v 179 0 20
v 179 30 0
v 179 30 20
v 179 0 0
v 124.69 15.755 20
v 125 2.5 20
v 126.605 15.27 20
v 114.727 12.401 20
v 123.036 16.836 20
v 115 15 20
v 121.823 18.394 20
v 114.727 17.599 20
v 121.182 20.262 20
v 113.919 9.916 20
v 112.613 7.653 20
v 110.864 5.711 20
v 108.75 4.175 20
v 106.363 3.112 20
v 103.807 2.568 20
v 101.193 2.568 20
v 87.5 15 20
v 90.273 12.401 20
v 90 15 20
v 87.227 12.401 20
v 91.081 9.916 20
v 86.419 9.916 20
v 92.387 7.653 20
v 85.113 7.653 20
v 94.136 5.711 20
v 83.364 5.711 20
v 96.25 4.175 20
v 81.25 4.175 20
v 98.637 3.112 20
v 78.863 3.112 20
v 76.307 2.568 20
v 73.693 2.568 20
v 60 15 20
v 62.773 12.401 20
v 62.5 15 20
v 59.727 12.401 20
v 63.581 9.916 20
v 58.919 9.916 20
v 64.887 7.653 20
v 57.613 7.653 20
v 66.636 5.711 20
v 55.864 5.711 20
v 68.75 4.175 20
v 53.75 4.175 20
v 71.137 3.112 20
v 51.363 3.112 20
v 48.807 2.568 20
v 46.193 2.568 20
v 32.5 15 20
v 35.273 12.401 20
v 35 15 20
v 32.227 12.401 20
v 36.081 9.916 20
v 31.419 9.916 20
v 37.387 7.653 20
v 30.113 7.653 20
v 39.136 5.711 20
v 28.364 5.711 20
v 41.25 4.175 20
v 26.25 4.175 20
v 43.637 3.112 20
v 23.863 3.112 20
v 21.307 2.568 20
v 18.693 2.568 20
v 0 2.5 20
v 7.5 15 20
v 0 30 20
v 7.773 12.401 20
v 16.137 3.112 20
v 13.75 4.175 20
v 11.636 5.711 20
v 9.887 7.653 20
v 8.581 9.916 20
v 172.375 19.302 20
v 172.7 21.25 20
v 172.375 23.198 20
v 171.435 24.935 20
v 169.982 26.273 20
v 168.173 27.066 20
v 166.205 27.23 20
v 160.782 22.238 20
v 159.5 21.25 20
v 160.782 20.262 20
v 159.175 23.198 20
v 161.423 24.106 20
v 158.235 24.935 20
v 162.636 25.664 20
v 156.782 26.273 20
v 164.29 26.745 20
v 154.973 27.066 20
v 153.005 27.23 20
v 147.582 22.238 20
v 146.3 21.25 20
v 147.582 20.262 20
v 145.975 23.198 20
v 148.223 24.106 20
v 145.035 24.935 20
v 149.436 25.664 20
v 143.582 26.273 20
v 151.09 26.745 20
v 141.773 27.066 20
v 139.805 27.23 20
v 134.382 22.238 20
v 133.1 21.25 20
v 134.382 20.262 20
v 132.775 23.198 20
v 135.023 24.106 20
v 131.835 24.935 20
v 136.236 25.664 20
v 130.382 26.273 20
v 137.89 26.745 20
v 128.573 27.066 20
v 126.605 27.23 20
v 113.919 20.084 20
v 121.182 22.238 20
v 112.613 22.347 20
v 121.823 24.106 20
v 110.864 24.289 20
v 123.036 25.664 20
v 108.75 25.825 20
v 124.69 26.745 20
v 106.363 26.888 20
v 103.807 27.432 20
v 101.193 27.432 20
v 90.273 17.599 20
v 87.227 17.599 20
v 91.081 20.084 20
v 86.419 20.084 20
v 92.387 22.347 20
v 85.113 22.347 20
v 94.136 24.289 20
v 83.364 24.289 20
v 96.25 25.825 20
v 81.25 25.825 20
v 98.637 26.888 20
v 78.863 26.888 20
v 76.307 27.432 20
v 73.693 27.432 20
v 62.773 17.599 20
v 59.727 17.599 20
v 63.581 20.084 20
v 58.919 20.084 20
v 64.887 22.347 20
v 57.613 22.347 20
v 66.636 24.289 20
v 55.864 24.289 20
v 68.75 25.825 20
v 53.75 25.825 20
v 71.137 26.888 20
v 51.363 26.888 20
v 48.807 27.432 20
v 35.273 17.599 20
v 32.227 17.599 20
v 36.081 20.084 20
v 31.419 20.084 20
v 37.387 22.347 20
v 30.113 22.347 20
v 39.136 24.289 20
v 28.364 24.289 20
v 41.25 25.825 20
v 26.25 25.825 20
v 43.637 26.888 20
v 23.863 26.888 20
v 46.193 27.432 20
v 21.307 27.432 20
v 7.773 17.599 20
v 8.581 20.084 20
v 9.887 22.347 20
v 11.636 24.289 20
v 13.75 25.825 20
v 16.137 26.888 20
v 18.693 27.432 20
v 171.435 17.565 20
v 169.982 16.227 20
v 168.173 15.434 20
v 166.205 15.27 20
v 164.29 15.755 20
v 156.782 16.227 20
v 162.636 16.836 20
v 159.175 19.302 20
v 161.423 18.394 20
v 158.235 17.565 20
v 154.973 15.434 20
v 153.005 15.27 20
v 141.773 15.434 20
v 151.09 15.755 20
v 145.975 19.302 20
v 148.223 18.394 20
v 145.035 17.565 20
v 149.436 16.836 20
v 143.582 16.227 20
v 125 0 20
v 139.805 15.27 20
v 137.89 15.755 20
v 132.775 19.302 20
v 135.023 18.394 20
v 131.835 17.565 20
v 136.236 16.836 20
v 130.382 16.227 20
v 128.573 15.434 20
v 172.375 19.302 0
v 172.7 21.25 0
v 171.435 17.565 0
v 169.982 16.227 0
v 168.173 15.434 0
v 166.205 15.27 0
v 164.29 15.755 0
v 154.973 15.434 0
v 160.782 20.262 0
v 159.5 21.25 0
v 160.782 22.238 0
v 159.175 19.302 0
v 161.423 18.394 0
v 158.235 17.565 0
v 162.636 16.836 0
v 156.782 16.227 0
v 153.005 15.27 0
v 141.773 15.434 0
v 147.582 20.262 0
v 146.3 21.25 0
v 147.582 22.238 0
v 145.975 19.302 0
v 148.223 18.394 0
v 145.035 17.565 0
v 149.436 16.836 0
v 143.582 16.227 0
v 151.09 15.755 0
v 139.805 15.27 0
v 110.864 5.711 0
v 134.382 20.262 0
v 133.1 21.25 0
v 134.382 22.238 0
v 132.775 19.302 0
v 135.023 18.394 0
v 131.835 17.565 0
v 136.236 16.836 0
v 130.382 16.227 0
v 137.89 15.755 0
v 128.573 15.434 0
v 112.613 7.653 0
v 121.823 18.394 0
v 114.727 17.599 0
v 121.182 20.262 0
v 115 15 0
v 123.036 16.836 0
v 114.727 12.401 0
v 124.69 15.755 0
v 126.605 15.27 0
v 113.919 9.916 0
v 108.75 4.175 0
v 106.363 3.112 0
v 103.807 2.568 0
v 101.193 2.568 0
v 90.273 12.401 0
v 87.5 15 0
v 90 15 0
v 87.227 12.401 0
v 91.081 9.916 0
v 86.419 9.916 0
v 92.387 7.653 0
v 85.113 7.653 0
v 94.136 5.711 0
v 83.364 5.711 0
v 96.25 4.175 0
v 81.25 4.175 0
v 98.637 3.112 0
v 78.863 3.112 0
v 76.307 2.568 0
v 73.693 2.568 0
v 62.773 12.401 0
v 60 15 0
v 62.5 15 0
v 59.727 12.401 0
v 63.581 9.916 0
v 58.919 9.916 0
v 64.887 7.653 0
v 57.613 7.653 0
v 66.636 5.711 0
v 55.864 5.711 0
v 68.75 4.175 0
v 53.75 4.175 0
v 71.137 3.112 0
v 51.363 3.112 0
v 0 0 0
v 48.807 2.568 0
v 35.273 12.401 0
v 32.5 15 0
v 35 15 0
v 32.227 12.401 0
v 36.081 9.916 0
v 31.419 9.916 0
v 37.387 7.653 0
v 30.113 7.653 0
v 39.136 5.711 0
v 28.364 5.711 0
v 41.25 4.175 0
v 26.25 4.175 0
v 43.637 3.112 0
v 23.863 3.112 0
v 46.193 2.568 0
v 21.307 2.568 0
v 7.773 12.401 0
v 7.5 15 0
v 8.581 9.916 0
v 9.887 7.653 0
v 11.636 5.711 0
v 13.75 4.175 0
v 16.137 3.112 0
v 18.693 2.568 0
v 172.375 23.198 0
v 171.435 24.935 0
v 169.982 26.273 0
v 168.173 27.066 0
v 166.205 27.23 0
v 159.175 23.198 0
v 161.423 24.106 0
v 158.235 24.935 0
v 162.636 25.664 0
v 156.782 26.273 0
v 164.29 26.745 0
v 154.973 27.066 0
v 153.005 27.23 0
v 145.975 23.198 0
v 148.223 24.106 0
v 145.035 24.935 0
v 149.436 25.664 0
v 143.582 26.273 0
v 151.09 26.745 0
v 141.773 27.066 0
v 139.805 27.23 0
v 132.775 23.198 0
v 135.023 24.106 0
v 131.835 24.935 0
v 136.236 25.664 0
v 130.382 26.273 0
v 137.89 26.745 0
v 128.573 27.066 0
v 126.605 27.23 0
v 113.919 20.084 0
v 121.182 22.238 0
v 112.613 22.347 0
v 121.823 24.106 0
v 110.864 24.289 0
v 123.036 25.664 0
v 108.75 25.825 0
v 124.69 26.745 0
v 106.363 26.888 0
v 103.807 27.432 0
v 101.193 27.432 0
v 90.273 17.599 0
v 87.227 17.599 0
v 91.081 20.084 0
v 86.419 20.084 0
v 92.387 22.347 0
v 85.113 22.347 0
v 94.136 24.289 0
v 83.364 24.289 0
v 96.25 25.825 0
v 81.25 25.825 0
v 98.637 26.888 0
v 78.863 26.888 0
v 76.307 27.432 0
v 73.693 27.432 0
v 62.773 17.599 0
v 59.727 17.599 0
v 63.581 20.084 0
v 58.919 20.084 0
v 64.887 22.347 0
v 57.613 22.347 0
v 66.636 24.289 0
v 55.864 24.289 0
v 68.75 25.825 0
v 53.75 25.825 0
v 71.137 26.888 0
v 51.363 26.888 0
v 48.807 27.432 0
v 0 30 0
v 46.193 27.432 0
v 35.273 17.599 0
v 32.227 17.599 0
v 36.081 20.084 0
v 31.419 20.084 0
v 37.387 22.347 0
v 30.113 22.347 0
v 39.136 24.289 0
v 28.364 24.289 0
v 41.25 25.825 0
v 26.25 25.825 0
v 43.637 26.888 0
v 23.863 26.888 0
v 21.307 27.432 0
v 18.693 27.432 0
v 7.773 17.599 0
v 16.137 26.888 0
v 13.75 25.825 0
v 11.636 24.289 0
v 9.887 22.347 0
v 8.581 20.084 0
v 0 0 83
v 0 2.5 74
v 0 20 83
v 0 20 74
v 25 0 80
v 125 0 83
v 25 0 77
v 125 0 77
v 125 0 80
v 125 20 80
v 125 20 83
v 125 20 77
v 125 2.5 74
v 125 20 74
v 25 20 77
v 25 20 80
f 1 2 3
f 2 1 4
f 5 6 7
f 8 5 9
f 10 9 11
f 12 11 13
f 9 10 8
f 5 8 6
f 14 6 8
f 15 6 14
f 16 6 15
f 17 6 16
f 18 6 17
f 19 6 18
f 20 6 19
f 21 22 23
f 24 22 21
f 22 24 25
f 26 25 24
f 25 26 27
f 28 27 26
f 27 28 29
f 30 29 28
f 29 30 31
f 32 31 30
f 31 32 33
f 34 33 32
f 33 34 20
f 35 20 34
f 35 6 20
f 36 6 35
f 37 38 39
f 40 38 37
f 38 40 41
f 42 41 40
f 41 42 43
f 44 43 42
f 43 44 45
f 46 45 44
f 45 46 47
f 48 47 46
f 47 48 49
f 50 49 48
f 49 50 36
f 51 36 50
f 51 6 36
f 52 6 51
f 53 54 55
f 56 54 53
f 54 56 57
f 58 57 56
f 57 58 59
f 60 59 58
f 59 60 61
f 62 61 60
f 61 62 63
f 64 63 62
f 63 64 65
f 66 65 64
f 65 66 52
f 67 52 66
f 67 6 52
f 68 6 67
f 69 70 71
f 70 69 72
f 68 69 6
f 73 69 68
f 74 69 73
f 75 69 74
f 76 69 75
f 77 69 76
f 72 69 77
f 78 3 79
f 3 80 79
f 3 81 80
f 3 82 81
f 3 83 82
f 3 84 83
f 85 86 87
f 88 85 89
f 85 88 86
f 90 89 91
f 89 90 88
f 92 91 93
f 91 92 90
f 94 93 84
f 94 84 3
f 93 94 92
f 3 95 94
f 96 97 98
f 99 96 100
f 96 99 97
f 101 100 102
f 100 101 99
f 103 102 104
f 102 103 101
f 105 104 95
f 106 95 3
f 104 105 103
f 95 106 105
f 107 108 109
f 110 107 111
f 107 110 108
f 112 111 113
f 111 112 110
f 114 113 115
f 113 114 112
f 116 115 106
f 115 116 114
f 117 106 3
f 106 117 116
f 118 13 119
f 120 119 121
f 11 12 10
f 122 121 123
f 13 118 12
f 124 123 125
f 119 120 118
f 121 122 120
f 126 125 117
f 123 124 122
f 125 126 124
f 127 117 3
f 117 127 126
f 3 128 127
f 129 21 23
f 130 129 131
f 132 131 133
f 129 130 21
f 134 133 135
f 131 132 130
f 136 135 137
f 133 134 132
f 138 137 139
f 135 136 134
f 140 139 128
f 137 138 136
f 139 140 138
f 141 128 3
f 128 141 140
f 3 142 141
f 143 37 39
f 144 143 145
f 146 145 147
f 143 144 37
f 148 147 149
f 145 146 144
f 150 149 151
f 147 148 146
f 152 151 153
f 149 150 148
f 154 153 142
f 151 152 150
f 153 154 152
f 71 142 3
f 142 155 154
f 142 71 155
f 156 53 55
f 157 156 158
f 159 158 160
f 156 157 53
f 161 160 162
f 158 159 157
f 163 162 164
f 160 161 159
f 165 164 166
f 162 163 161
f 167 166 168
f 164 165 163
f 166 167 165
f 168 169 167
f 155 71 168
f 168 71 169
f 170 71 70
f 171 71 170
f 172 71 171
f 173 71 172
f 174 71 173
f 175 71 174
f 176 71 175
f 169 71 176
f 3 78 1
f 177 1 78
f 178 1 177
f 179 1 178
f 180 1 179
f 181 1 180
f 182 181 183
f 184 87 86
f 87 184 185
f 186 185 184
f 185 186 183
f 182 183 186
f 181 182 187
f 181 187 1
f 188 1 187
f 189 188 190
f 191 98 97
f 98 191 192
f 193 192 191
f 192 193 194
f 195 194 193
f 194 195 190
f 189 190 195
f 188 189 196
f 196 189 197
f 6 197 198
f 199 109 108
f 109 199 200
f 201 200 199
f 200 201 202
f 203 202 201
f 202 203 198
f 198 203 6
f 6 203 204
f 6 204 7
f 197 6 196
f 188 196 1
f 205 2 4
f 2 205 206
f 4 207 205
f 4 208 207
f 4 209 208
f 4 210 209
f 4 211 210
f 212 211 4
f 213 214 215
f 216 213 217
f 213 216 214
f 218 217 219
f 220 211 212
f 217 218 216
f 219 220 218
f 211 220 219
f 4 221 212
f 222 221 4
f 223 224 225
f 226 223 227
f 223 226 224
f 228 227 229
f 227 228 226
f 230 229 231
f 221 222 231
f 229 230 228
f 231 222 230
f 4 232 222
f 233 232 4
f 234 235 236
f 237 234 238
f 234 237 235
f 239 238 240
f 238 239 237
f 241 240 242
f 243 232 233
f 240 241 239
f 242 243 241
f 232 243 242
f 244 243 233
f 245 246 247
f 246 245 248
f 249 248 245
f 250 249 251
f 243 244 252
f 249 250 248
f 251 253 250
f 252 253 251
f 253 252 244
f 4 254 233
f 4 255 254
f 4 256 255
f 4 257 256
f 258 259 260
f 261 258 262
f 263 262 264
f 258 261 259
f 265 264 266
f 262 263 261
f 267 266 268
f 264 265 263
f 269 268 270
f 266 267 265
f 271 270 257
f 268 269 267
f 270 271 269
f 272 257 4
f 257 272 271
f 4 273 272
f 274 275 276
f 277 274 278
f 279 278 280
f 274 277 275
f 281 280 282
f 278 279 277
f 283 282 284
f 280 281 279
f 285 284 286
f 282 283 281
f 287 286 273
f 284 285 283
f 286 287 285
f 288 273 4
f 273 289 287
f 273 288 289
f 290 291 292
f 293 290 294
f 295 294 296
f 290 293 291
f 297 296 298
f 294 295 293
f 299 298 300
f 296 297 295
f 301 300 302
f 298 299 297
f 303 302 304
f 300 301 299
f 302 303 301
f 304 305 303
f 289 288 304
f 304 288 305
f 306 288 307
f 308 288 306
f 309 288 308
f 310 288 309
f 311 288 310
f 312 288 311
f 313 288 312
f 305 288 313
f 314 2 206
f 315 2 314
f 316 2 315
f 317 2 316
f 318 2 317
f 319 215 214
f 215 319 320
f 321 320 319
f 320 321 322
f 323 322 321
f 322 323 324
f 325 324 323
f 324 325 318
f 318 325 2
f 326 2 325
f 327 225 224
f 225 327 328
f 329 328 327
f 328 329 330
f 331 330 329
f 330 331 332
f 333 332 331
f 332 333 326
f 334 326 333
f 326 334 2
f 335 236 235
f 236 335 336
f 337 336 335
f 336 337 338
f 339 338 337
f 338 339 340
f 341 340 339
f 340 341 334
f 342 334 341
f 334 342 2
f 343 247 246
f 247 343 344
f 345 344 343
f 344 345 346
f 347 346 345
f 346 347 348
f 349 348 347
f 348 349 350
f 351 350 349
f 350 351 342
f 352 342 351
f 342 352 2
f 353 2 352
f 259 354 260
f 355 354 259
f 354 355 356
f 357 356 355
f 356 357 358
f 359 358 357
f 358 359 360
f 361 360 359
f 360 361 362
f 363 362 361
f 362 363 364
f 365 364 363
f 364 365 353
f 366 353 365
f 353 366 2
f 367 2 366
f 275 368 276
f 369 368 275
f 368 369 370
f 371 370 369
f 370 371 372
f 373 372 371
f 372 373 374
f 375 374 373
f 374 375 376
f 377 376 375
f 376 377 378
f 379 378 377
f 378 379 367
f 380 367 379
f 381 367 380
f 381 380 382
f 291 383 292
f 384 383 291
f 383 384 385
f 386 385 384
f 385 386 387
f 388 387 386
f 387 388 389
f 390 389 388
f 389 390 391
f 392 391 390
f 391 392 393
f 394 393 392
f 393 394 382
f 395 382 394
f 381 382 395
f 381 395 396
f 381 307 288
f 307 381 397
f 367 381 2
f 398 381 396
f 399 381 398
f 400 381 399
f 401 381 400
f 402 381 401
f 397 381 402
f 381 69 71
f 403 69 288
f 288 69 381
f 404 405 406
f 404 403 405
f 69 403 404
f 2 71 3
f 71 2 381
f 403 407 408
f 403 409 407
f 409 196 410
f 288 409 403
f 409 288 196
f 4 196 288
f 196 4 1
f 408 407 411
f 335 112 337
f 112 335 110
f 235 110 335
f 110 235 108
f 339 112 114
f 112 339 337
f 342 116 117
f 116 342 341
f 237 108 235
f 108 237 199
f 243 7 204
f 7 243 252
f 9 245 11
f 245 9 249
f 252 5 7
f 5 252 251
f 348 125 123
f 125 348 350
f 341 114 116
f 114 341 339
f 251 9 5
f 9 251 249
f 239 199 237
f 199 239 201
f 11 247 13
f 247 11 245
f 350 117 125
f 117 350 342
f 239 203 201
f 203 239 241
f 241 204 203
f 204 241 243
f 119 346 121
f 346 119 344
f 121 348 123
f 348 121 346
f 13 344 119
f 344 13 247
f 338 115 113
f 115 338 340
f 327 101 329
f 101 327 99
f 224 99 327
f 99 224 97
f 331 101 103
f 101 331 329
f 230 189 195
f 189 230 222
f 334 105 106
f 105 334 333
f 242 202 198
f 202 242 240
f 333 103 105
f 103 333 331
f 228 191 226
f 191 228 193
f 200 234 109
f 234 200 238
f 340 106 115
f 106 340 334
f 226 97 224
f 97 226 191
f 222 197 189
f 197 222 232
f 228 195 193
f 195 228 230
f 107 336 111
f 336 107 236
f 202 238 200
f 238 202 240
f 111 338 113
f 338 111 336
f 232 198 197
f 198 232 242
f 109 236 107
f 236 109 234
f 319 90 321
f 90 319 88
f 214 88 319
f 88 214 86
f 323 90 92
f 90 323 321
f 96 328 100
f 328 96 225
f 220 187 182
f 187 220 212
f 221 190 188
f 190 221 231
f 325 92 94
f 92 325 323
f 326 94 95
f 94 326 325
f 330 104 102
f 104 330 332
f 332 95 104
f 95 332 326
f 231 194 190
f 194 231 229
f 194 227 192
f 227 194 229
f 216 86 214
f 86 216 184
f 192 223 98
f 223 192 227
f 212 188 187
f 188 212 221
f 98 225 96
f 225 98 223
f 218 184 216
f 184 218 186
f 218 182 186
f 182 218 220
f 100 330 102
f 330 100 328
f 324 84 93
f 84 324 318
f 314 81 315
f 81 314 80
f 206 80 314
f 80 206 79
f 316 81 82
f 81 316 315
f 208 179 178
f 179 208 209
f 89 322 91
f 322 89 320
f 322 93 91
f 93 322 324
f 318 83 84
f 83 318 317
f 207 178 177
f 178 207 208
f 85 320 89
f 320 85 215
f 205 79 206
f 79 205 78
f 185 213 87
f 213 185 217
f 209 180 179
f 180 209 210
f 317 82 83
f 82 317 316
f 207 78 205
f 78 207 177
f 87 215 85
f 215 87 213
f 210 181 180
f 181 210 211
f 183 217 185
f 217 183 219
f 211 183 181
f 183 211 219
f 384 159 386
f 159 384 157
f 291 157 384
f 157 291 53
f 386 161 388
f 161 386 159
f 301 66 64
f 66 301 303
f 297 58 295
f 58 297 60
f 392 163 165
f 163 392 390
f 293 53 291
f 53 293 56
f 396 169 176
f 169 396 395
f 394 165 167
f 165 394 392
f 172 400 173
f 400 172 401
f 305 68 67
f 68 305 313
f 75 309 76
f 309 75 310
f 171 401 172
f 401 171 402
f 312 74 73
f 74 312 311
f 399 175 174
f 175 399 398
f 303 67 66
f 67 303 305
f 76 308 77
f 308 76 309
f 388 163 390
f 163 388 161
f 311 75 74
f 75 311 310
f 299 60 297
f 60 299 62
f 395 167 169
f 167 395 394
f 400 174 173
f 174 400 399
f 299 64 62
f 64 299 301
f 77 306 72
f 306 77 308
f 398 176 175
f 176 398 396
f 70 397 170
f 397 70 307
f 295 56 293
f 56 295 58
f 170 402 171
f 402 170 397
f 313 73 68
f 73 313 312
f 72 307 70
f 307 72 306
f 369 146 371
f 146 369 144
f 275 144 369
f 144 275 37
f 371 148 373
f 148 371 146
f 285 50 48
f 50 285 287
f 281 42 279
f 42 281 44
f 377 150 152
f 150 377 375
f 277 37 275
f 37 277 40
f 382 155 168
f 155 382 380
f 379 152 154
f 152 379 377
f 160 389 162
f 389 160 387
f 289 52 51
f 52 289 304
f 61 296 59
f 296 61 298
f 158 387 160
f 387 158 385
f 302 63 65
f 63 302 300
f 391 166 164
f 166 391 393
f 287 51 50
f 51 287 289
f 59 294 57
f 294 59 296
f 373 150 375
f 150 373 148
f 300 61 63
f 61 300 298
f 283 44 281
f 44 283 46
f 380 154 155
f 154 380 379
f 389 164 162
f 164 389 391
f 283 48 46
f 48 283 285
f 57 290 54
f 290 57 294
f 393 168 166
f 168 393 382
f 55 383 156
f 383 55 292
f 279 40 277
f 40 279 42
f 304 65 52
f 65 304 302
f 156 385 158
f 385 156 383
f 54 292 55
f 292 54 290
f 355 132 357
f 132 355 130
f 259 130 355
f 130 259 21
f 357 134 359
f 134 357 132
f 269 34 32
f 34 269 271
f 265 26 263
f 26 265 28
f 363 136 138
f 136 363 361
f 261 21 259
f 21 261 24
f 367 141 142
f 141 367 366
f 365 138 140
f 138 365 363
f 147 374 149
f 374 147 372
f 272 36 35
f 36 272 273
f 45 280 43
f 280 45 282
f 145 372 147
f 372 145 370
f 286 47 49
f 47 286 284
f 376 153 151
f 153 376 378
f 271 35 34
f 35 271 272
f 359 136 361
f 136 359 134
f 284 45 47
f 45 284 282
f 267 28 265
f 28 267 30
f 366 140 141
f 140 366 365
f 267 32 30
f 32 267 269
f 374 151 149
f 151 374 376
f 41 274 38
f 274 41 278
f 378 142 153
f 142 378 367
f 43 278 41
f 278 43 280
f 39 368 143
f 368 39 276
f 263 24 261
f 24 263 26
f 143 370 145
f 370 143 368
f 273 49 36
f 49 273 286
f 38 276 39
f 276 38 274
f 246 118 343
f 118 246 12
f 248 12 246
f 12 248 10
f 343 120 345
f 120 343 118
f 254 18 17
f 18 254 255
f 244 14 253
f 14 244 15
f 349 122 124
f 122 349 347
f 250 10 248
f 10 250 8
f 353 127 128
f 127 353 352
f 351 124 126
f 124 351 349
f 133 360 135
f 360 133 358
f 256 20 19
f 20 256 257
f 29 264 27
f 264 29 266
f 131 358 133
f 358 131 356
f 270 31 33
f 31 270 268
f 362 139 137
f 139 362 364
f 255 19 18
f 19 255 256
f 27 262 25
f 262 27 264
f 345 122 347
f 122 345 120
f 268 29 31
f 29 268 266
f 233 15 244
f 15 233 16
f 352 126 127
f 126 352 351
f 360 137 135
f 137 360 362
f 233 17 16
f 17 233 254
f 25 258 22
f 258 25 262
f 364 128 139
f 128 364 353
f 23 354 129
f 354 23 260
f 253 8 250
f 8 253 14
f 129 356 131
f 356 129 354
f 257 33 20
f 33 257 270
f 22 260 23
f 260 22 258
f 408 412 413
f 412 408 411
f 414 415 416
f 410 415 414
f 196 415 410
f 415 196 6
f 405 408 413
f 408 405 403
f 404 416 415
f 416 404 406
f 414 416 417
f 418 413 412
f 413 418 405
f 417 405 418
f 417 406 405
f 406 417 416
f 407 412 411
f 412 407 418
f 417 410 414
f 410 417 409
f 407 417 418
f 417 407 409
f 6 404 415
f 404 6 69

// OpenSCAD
thickness =  3;
width     = 20;
marker1   = 25;
marker2   = 12;
marker_l  = 45;

module marker1() {
    cylinder(d = marker1, h = marker_l);
}

module marker2() {
    cylinder(d = marker2, h = marker_l);
}

module holder() {
        difference() {
        cube( [ 5 * marker1 + 4.5 * marker2, 1.2 * marker1, width ] );

        translate([ (1.1-0.3) * marker2 + 4.7*marker1, 0.85*marker1, -1]) marker2();
        translate([ (2.2-0.3) * marker2 + 4.7*marker1, 0.85*marker1, -1]) marker2();
        translate([ (3.3-0.3) * marker2 + 4.7*marker1, 0.85*marker1, -1]) marker2();
        translate([ (4.4-0.3) * marker2 + 4.7*marker1, 0.85*marker1, -1]) marker2();
    
        translate([ (1.1-0.3) * marker1, 0.6*marker1, -1]) marker1();
        translate([ (2.2-0.3) * marker1, 0.6*marker1, -1]) marker1();
        translate([ (3.3-0.3) * marker1, 0.6*marker1, -1]) marker1();
        translate([ (4.4-0.3) * marker1, 0.6*marker1, -1]) marker1();
    }
}

module hanger() {
    difference() {
        cube( [ 5*marker1, width, 3*thickness ] );
        translate([ marker1, -width, thickness ]) cube( [ 4*marker1+1, 3*width, thickness ] );
    }
}
module connection() {
    cube([ 5*marker1, 0.1*marker1, width+1.2*marker_l]);
}

holder();
translate([ 0, 0, width+1.2*marker_l ]) hanger();
connection();
